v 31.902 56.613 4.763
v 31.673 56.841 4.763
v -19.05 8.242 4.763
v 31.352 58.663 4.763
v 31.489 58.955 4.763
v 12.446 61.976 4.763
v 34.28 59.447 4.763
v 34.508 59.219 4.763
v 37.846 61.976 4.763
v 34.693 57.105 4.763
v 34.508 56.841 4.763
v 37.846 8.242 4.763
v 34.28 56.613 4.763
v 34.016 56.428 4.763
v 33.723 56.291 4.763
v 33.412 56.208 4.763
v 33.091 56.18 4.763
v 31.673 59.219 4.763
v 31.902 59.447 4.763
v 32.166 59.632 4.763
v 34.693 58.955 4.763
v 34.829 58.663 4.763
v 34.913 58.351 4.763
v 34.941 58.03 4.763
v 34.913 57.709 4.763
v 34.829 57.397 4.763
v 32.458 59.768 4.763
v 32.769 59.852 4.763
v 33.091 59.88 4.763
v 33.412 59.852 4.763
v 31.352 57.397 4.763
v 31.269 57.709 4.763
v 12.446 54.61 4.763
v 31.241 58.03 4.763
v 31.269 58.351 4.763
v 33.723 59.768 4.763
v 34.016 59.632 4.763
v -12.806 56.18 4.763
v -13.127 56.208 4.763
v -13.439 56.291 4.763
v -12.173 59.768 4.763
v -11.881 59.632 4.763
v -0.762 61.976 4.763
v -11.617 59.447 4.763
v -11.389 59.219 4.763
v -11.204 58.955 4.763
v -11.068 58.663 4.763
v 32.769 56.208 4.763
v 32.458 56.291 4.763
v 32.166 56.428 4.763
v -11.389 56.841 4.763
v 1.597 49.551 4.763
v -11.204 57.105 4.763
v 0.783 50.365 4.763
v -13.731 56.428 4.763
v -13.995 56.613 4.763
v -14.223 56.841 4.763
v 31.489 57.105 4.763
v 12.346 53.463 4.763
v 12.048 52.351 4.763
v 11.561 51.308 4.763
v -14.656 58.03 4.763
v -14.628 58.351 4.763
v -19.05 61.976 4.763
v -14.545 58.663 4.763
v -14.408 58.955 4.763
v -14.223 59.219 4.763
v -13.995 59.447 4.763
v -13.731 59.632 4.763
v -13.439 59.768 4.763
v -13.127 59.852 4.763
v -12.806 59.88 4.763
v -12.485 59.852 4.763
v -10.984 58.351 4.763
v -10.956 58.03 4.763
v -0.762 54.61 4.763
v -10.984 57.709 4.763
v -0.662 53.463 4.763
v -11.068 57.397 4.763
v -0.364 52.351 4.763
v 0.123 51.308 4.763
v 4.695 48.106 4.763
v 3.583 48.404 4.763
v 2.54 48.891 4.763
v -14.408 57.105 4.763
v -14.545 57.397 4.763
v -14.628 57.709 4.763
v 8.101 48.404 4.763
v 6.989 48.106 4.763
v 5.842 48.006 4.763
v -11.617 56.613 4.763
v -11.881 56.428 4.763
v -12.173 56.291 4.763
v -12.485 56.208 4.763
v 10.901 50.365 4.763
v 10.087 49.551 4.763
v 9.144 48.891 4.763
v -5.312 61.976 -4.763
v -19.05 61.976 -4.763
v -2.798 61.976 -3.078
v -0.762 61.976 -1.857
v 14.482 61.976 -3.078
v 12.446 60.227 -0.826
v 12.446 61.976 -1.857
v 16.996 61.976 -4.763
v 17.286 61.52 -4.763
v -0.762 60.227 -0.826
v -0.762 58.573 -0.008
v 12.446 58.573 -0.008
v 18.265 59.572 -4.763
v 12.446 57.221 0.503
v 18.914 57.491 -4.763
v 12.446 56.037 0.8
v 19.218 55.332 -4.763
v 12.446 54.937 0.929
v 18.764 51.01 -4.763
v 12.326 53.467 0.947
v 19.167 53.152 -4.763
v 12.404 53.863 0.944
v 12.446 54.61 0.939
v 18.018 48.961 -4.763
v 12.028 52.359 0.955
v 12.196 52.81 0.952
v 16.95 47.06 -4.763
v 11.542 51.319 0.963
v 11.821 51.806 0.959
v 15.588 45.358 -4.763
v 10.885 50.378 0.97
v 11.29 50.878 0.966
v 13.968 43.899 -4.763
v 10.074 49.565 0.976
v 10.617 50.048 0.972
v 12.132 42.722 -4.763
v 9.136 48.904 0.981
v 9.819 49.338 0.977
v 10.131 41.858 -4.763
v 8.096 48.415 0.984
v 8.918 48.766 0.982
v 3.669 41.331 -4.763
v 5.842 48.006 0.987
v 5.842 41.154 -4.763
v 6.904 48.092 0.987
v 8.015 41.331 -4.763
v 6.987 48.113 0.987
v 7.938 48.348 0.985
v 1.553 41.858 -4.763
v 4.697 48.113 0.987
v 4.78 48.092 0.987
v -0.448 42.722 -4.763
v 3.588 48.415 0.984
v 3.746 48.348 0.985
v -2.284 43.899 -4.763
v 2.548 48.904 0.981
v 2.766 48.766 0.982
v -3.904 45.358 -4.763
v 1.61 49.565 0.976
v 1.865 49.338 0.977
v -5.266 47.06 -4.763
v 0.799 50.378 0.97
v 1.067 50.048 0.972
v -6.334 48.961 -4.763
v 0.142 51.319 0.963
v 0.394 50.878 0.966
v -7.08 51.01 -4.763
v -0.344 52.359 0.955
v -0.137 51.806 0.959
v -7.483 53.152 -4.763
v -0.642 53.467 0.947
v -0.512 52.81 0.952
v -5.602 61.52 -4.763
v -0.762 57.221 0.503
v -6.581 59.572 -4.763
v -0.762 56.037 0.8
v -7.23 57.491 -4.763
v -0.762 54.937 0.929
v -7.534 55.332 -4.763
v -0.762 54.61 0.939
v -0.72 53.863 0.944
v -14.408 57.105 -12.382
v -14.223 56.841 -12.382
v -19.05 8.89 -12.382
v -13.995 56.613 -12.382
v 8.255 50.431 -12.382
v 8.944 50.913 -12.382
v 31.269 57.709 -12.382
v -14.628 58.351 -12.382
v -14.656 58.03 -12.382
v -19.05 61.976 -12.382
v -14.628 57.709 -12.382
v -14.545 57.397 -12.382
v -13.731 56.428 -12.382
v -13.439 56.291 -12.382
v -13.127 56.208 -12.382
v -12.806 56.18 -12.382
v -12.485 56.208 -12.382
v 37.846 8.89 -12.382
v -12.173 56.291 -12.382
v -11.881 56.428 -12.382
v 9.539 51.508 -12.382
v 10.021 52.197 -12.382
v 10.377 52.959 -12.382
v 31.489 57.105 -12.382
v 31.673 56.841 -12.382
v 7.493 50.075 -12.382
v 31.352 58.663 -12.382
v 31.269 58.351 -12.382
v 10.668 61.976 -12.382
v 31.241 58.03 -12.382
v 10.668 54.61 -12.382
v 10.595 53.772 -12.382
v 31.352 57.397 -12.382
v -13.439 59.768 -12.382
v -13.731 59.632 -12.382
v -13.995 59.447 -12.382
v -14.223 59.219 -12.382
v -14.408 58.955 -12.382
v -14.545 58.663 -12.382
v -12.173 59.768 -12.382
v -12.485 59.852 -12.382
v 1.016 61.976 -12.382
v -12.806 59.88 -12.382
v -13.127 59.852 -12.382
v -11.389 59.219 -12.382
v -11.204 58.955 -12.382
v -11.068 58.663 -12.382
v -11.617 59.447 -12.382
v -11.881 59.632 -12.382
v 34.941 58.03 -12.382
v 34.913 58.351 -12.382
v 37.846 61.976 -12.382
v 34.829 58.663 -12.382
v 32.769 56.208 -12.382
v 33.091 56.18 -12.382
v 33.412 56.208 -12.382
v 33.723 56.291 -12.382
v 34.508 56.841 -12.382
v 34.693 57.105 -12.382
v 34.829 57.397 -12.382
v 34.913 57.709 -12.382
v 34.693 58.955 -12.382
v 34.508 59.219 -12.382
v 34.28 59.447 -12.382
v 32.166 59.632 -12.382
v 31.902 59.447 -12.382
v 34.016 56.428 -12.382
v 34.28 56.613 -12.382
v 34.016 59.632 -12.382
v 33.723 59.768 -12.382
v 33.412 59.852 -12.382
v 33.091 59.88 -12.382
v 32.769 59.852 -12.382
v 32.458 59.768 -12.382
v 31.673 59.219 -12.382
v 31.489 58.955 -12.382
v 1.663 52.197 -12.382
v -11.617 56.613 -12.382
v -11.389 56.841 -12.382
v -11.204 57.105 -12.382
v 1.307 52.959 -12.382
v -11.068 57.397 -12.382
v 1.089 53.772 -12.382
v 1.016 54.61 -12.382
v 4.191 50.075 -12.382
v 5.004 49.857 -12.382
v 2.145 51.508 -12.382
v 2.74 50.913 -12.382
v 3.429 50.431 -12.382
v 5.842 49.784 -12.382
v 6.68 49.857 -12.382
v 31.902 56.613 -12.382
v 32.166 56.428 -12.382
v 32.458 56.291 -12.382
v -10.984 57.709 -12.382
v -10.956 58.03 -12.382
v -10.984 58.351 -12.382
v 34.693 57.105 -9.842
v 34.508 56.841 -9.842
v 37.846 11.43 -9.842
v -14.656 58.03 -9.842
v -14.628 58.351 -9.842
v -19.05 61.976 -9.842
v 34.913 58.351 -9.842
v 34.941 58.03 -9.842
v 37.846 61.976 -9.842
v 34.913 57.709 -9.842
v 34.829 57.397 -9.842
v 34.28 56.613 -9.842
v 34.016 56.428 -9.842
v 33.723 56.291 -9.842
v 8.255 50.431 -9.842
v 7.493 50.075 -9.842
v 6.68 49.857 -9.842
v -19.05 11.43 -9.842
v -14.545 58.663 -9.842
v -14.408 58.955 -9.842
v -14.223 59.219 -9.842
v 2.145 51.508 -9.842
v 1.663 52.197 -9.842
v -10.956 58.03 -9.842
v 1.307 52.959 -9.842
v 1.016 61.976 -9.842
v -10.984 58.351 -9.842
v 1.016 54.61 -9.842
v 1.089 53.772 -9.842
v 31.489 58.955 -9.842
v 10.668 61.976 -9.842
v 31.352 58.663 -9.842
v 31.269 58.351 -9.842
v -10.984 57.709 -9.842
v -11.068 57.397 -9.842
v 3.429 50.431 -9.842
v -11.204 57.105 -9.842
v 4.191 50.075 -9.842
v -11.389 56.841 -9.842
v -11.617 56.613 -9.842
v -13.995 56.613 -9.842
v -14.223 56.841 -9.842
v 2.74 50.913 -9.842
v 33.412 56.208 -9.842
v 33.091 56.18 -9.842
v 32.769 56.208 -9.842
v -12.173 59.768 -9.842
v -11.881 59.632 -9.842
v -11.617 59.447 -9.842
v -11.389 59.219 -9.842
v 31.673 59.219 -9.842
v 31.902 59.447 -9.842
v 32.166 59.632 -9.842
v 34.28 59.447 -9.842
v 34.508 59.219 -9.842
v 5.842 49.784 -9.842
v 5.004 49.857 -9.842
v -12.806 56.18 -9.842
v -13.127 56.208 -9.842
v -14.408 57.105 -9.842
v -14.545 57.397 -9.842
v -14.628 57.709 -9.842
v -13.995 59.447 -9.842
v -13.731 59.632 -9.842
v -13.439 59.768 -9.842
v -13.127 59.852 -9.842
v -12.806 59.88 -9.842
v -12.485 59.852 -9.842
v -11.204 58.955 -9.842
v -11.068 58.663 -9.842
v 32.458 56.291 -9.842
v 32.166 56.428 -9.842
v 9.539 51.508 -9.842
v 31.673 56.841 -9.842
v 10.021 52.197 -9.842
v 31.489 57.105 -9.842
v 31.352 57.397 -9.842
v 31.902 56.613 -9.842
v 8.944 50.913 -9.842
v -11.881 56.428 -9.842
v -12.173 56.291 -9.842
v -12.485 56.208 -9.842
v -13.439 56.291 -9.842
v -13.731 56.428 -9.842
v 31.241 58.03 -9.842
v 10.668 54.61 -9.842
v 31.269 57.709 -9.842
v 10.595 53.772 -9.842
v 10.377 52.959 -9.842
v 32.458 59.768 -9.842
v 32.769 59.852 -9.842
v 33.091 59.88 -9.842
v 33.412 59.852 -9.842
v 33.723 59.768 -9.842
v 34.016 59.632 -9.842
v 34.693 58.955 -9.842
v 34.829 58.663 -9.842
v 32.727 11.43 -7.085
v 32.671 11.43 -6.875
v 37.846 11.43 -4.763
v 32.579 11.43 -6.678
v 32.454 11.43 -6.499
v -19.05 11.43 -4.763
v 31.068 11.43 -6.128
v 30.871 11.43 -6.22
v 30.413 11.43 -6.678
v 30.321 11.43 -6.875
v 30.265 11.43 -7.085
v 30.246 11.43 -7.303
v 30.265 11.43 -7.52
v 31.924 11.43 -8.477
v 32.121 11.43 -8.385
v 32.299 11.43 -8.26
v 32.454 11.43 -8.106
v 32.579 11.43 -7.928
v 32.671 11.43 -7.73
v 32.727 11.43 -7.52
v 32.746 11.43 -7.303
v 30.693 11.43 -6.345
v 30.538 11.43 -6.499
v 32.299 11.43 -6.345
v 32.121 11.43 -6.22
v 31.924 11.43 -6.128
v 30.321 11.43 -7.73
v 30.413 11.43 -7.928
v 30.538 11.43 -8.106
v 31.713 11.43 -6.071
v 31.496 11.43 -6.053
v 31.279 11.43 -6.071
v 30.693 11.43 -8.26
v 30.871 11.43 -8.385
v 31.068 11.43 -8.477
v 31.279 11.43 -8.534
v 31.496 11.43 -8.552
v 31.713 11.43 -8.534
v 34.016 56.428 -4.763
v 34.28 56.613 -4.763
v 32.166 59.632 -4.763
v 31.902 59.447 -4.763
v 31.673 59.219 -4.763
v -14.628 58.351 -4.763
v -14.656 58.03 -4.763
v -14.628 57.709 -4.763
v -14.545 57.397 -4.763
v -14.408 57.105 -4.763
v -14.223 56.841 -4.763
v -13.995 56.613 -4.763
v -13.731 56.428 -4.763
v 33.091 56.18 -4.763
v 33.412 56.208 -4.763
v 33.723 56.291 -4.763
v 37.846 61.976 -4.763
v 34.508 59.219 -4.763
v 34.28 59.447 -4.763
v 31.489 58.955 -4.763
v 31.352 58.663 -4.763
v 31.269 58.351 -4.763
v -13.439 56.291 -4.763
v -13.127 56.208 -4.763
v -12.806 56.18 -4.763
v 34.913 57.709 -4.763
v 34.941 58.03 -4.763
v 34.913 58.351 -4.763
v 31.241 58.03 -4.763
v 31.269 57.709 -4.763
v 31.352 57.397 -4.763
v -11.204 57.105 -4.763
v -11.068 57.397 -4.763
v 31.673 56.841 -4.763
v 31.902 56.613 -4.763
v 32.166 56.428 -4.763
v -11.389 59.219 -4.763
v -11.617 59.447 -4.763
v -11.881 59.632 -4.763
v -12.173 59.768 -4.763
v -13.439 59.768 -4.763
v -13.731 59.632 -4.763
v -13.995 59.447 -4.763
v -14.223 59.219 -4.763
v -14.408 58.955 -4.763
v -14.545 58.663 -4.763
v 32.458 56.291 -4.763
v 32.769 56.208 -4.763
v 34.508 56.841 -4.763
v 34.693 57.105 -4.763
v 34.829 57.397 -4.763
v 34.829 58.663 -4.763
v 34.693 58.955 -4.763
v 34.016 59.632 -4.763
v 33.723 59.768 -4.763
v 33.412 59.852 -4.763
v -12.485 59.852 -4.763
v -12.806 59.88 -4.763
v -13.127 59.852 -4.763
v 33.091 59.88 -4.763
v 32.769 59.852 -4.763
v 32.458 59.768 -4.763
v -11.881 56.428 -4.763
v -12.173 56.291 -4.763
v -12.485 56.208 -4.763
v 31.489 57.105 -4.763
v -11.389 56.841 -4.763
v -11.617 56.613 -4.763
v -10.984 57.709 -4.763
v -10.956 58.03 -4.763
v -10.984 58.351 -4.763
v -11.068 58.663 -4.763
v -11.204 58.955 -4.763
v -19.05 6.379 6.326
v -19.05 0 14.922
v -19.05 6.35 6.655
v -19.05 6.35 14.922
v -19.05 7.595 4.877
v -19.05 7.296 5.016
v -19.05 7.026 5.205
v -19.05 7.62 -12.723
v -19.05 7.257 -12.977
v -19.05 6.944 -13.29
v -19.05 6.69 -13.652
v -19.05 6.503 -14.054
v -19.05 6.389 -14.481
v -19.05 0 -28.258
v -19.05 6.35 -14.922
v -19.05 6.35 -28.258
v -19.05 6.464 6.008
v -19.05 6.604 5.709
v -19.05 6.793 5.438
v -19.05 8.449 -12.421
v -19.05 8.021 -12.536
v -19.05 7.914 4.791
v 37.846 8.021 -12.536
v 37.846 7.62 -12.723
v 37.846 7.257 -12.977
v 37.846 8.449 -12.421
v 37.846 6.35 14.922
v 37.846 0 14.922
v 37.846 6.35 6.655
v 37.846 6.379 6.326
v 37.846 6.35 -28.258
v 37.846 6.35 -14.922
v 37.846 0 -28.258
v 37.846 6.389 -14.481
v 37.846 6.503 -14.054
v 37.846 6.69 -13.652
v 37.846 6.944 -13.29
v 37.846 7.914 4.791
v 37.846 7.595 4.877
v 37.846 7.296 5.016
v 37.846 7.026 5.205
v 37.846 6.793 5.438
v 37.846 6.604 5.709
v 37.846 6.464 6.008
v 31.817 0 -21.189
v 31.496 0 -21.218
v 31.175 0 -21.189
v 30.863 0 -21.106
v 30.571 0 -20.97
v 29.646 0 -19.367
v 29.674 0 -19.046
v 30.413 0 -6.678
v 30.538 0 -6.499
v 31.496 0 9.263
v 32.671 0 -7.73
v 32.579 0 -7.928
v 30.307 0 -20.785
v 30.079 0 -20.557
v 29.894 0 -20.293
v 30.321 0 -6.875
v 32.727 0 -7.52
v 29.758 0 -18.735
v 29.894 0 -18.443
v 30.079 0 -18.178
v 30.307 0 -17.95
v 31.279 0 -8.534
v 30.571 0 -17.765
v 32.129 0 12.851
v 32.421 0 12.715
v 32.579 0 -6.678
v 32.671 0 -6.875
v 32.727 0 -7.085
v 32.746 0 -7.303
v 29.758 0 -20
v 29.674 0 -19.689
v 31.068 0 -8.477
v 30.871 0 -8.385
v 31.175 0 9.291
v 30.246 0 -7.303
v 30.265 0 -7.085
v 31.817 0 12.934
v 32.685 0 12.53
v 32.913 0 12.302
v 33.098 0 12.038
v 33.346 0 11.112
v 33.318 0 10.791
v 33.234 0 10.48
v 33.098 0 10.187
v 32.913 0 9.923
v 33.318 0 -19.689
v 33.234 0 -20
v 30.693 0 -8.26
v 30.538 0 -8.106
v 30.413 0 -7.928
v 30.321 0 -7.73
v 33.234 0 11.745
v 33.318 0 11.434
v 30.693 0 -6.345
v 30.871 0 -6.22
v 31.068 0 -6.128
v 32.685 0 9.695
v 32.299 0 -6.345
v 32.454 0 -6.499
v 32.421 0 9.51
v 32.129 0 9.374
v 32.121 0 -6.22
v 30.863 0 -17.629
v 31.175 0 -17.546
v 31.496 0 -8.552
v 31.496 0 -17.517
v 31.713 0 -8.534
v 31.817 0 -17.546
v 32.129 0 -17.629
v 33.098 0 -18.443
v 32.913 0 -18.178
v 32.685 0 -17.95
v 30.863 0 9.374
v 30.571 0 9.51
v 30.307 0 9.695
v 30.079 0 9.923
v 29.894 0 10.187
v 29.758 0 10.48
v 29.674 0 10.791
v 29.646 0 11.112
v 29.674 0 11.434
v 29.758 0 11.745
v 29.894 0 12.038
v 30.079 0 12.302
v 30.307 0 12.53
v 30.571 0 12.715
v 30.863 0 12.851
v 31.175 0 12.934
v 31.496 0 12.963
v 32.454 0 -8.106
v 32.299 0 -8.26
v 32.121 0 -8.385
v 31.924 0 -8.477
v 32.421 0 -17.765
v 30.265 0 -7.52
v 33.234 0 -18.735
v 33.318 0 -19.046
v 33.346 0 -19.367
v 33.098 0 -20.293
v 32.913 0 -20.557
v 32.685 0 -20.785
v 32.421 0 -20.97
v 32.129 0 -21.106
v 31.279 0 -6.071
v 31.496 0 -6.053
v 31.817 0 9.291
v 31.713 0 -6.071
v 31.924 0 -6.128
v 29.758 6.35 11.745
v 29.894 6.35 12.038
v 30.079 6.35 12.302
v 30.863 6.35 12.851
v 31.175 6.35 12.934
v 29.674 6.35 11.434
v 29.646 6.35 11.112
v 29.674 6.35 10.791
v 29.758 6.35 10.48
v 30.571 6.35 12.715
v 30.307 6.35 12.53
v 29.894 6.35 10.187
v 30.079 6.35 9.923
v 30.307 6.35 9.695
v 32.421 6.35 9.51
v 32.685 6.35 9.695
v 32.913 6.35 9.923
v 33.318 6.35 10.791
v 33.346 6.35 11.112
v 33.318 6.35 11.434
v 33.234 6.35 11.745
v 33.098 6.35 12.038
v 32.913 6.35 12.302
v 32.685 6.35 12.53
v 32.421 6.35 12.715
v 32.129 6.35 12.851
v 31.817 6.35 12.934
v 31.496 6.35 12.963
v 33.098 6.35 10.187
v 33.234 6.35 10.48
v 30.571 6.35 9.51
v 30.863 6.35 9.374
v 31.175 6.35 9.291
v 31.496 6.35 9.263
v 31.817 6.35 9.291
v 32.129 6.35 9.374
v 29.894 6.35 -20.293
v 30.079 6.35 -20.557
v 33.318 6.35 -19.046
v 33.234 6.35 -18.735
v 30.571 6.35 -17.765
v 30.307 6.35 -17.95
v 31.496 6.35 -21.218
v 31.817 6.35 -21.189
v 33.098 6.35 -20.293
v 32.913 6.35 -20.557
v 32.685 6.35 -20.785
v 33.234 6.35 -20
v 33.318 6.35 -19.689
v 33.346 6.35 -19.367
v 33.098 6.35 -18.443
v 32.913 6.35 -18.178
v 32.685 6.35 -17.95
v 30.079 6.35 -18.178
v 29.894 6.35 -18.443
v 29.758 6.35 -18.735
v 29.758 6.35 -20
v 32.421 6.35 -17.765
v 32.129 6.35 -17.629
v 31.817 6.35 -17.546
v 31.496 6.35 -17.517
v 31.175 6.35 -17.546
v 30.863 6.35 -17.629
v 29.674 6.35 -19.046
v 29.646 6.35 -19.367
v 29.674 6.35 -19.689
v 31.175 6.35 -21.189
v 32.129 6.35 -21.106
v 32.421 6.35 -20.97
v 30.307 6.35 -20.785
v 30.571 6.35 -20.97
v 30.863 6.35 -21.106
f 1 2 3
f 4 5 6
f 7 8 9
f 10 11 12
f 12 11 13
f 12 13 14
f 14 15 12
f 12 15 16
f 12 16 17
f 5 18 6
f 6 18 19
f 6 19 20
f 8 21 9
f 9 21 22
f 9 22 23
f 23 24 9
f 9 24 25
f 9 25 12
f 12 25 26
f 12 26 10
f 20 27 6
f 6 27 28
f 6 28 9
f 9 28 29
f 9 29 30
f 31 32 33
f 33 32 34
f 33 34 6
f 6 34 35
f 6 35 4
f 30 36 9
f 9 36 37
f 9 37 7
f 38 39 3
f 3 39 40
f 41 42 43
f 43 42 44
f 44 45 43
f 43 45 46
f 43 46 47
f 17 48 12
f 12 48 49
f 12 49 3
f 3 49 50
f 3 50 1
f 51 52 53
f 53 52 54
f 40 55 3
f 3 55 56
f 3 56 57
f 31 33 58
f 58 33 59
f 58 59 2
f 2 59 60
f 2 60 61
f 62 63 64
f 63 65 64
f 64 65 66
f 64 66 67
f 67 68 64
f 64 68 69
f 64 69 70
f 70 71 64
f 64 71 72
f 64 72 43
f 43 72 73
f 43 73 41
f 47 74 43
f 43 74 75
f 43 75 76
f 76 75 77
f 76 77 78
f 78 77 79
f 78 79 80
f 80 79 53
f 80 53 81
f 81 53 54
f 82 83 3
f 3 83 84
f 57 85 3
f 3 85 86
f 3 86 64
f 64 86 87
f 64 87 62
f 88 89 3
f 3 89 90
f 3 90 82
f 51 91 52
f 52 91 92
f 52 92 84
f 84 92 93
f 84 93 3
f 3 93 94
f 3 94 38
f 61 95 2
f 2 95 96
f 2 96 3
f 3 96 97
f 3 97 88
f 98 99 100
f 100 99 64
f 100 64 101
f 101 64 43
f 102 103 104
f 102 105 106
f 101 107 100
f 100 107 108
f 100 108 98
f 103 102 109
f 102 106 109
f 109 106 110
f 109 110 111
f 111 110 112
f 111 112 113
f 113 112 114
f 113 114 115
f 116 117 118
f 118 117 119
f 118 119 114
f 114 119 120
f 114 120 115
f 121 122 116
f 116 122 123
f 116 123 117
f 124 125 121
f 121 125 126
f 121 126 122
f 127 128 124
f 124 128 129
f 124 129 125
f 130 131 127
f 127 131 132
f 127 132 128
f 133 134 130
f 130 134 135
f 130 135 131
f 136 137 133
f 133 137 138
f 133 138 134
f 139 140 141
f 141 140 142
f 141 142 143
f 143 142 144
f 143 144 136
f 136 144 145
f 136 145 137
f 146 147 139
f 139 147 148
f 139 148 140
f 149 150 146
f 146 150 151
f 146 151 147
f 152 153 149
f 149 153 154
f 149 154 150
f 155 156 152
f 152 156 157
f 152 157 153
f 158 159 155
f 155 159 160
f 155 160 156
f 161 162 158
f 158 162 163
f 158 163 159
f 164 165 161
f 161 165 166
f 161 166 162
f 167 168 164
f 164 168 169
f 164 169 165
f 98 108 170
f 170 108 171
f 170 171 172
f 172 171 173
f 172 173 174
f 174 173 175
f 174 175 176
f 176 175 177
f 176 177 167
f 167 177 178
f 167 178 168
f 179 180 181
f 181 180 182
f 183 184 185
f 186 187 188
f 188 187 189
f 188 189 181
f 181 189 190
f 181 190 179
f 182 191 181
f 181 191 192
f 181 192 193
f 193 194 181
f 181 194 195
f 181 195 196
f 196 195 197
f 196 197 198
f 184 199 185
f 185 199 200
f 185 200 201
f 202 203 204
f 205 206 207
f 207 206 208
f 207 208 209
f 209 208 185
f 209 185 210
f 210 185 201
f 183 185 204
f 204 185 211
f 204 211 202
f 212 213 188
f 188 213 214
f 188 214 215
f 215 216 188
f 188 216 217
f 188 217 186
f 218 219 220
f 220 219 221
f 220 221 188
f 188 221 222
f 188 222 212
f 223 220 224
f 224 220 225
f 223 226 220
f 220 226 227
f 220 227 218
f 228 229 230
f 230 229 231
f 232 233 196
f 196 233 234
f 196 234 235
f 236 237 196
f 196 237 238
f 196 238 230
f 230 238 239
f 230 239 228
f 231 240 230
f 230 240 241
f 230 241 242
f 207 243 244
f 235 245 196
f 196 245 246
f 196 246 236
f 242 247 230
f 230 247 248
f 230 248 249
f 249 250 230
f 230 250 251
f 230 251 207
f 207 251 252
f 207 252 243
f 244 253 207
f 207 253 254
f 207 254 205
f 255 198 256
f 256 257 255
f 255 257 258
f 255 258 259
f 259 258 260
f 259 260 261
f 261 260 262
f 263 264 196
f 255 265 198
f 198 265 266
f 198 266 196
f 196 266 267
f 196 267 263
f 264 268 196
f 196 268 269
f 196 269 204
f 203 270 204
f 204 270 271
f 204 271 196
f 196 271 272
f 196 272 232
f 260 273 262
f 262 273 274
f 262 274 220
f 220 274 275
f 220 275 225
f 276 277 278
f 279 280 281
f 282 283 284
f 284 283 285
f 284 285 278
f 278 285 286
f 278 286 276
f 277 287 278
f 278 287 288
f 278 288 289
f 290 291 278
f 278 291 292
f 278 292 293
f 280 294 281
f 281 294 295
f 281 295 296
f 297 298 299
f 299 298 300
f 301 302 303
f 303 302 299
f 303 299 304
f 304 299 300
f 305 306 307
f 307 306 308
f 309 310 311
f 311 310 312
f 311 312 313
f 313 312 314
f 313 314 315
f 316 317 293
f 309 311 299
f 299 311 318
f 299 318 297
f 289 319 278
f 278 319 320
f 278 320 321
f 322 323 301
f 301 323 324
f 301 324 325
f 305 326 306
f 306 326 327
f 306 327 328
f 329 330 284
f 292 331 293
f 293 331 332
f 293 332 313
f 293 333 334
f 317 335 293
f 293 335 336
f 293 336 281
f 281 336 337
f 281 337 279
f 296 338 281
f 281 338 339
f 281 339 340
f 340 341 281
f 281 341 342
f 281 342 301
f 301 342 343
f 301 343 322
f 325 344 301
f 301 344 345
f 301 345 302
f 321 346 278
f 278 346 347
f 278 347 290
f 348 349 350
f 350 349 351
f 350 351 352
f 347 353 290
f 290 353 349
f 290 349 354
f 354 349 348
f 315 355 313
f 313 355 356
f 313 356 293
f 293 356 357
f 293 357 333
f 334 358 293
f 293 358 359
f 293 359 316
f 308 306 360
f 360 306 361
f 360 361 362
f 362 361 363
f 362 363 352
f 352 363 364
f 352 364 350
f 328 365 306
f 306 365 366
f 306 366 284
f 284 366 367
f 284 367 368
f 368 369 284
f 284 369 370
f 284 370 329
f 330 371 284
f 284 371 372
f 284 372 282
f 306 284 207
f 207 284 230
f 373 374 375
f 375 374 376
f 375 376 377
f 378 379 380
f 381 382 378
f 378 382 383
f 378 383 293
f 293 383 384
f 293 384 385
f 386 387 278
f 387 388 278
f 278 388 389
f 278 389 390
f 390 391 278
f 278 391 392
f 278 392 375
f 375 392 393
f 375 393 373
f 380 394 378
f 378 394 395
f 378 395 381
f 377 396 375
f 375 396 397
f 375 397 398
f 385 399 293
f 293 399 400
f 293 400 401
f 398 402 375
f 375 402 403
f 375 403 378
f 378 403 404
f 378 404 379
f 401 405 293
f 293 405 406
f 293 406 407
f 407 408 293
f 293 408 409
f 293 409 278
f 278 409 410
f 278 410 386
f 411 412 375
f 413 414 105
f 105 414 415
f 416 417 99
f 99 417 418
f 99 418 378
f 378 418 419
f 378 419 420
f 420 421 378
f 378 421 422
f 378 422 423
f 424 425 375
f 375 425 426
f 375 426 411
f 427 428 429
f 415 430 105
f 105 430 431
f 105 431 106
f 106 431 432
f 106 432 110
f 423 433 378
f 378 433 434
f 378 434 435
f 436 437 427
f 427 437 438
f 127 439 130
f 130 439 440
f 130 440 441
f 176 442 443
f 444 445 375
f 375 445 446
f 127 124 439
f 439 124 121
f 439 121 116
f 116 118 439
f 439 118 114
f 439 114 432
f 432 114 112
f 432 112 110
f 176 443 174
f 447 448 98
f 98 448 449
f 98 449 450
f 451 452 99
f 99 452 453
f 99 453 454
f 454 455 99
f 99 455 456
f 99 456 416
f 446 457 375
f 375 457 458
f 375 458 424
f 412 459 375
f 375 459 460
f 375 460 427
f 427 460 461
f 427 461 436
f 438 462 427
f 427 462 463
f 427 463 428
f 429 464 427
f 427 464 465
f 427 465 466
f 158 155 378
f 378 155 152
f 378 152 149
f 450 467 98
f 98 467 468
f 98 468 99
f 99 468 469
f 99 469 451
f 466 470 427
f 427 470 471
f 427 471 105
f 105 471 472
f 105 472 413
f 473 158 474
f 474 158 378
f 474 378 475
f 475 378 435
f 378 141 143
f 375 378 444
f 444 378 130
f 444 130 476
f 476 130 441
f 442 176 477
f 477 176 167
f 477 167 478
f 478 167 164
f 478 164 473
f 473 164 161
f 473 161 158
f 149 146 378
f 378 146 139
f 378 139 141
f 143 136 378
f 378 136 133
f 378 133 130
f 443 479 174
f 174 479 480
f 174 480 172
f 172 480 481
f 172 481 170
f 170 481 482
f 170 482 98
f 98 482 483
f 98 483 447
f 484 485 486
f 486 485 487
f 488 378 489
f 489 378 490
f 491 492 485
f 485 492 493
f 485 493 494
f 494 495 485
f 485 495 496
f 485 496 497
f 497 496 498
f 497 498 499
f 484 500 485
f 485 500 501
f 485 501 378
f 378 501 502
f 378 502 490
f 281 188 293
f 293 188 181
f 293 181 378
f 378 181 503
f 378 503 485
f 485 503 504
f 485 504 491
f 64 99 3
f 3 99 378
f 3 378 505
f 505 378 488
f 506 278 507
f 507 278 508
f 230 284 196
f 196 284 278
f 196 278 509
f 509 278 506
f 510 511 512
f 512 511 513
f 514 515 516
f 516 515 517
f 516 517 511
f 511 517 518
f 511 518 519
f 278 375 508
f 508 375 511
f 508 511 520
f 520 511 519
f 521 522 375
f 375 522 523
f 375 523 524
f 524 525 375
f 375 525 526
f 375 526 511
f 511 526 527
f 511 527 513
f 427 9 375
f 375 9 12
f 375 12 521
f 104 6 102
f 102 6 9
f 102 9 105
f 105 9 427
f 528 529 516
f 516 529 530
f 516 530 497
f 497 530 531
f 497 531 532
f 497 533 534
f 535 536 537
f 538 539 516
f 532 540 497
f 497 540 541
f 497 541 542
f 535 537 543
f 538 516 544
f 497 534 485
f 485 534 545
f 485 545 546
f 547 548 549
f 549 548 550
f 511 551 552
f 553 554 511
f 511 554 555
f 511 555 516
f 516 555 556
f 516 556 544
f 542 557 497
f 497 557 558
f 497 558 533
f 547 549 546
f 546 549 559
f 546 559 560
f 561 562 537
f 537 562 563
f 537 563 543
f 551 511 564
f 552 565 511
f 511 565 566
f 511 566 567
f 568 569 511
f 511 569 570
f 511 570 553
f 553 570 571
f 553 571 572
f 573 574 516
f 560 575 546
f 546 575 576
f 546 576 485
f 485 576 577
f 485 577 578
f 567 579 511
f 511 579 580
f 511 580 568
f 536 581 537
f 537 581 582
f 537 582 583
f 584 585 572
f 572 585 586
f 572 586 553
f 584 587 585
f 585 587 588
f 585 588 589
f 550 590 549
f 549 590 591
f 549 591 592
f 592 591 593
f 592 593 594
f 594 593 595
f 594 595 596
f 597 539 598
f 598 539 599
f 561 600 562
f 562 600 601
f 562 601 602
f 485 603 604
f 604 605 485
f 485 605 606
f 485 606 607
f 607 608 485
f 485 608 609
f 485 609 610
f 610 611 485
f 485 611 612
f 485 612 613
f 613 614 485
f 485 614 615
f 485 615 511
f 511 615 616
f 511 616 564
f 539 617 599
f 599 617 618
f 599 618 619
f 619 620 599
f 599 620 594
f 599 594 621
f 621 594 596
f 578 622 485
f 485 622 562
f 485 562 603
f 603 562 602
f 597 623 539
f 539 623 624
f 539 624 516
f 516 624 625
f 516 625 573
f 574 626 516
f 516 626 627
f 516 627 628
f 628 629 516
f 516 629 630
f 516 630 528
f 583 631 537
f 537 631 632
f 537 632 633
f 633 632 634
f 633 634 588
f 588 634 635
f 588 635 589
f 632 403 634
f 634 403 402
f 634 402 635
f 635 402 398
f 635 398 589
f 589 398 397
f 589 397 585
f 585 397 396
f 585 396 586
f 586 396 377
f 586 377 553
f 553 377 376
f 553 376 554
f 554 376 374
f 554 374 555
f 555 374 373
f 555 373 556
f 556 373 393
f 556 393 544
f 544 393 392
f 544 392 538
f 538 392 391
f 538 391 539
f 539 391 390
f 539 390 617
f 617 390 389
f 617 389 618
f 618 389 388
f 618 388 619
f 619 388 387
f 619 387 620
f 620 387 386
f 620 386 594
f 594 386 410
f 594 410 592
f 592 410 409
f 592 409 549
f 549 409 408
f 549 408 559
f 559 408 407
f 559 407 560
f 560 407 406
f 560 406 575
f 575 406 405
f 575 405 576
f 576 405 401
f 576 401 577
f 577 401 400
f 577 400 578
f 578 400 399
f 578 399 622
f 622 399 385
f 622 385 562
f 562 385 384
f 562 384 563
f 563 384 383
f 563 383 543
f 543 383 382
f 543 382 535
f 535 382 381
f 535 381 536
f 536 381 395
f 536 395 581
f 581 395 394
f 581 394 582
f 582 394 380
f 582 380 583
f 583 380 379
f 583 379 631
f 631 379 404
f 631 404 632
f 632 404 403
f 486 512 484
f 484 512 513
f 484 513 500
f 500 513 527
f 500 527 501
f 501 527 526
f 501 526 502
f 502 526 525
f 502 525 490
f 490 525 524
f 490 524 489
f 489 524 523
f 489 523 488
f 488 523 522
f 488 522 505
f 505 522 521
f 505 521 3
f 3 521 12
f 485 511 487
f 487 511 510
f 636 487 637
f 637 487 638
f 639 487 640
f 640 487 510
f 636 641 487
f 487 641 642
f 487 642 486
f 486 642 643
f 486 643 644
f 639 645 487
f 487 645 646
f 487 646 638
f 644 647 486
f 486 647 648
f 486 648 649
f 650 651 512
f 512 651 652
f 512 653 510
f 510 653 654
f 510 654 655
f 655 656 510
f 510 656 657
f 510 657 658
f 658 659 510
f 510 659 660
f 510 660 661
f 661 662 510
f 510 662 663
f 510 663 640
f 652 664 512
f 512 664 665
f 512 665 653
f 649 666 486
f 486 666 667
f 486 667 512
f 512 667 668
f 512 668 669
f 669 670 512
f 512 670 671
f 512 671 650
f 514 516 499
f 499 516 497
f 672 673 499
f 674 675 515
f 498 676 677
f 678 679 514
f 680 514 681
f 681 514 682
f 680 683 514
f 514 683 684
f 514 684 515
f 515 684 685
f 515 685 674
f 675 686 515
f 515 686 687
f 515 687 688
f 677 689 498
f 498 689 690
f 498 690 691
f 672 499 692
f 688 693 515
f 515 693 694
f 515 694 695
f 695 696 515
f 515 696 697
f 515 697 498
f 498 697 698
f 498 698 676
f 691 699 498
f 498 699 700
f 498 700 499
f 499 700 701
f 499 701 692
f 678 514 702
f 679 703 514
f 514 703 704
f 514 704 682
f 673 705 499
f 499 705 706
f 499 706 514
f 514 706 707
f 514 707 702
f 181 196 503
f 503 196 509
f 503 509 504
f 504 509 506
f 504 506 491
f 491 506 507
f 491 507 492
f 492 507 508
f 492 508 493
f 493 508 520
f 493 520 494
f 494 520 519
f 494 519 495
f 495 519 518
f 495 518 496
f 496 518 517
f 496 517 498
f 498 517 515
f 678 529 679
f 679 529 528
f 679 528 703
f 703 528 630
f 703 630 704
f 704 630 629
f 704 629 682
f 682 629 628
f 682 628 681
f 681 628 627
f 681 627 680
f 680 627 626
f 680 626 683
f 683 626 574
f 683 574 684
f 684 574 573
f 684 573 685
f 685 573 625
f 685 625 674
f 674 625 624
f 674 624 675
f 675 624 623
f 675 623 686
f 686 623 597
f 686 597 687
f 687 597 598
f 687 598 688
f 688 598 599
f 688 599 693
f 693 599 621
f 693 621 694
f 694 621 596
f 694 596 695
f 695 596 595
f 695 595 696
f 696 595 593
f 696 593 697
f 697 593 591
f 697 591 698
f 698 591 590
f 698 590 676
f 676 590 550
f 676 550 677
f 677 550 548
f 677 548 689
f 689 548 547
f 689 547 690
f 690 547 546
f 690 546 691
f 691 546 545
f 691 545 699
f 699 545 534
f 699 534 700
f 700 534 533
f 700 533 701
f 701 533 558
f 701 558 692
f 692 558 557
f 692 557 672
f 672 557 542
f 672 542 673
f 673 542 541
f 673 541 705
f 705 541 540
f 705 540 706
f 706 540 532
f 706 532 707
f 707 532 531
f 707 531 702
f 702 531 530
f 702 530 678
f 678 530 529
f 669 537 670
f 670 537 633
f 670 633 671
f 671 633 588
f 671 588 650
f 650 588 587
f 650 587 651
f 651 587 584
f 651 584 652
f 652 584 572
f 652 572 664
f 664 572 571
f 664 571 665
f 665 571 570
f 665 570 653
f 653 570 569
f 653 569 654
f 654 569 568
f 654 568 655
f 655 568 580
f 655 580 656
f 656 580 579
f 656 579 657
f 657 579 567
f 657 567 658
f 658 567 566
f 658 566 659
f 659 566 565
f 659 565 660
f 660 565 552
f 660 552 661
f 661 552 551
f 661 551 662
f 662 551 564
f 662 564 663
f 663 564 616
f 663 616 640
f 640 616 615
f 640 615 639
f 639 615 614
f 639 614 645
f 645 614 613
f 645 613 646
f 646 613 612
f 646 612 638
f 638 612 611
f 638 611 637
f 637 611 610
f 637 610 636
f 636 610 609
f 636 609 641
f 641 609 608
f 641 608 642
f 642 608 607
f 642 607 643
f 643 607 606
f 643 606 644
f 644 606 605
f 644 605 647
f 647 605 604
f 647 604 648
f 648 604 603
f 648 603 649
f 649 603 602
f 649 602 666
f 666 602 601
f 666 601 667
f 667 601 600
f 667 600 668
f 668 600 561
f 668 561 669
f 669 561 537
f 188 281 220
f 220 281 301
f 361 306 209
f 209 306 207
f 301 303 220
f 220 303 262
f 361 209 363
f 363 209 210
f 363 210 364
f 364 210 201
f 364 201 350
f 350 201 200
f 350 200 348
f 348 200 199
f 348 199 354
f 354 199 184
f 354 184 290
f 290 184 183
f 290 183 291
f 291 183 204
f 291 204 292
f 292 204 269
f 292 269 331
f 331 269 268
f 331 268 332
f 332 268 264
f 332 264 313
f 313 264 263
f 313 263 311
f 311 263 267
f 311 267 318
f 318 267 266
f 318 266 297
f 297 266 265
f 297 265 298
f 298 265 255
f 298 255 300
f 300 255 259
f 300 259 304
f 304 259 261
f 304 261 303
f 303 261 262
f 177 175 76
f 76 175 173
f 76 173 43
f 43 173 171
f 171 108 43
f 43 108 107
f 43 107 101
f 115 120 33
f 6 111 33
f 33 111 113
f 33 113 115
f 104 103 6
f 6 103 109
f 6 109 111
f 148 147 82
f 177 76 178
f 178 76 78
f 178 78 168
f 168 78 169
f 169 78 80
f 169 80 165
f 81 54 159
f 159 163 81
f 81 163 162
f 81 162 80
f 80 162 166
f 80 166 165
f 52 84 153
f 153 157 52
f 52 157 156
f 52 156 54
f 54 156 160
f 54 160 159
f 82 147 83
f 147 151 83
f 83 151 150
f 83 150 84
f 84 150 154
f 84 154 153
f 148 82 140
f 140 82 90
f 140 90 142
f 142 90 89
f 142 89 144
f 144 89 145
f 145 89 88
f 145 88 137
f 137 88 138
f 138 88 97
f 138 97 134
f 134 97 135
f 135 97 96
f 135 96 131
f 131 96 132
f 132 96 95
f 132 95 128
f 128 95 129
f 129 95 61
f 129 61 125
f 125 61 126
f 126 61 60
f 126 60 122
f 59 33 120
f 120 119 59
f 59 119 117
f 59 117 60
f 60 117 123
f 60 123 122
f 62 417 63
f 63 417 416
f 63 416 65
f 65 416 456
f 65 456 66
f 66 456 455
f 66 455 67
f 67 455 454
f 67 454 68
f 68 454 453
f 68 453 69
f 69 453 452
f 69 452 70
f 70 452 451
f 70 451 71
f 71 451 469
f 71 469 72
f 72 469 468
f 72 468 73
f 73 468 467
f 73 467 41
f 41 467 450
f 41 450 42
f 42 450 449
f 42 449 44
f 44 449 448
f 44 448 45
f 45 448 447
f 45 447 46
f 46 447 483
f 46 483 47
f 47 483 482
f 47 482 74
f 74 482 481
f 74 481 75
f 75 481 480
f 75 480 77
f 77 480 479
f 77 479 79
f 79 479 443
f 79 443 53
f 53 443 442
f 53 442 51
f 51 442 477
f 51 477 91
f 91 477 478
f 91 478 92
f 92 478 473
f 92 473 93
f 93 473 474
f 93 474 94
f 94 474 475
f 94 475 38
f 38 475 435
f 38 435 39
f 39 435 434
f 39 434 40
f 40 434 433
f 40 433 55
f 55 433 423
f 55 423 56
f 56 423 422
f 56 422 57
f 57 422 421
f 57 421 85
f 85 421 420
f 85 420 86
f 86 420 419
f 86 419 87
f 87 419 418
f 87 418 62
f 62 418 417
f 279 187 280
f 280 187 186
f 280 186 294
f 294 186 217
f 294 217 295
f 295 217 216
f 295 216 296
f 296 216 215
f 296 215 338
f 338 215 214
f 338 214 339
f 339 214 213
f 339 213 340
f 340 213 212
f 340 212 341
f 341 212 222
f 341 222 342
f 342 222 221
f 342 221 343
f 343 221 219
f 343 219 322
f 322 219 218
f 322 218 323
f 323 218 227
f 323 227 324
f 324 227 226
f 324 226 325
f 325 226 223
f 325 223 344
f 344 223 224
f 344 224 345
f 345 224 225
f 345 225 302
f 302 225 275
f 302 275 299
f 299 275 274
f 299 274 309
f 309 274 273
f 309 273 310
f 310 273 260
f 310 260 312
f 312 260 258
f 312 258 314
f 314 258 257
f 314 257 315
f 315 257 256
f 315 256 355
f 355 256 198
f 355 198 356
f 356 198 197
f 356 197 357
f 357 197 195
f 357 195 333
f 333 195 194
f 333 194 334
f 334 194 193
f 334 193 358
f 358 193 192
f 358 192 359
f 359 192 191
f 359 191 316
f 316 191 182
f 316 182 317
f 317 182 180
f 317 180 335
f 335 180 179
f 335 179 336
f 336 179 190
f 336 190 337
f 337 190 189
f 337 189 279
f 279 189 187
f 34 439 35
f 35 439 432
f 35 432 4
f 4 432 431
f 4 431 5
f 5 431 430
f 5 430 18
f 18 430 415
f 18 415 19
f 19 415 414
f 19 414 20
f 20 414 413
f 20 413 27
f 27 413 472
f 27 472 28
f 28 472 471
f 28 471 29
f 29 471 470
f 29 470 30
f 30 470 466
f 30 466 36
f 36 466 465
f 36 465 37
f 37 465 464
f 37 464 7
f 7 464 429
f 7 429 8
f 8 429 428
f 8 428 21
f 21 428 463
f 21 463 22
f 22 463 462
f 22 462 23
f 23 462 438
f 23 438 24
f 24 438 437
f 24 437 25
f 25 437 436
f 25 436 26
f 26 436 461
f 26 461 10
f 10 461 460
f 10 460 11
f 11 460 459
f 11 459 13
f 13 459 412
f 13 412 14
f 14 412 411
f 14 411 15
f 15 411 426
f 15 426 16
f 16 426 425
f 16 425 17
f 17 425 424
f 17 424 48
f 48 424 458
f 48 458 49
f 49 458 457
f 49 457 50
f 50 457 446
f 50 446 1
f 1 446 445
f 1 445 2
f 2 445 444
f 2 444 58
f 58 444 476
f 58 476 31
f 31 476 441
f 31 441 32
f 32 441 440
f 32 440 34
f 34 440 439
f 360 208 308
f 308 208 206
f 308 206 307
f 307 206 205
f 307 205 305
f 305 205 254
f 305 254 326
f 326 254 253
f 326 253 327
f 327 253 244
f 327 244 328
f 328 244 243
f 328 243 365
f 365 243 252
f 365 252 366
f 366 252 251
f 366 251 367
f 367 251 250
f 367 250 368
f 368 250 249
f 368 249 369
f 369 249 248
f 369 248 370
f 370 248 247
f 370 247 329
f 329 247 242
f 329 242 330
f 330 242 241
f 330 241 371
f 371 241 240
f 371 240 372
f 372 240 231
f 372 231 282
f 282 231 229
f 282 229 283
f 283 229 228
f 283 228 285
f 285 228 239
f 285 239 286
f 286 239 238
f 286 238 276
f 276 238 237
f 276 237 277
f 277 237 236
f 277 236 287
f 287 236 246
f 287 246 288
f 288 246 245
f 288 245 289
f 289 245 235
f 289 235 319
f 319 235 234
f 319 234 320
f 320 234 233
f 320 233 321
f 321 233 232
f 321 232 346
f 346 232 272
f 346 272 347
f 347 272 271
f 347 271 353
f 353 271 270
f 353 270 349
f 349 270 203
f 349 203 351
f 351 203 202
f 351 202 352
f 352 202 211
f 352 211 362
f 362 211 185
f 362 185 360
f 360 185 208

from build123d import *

# Parameters (mm, degrees)
SKETCH1_W                       = 56.896
SKETCH1_H                       = 9.525
BOSS_EXTRUDE1_DEPTH             = 61.976
SKETCH2_R                       = 13.3985
CUT_EXTRUDE1_DEPTH              = 5.8801
CUT_EXTRUDE1_DRAFT              = -50
SKETCH5_W                       = 56.896
SKETCH5_H                       = 11.43
BOSS_EXTRUDE2_DEPTH             = 7.62
TAP_DRILL_FOR_M3X0_5_TAP3_D     = 2.5
TAP_DRILL_FOR_M3X0_5_TAP3_DEPTH = 25.4
TAP_DRILL_FOR_M3X0_5_TAP3_TIP   = 0.751075774
BOSS_EXTRUDE4_DEPTH             = 56.896
M3_CLEARANCE_HOLE3_D            = 3.7
M3_CLEARANCE_HOLE3_DEPTH        = 25.4
M3_CLEARANCE_HOLE3_TIP          = 1.111592145
SKETCH6_W                       = 56.896
SKETCH6_H                       = 2.54
BOSS_EXTRUDE5_DEPTH             = 50.546
SKETCH24_R                      = 4.826
CUT_EXTRUDE2_DEPTH              = 2.54
SKETCH25_R                      = 6.604
CUT_EXTRUDE3_DEPTH              = 7.366
M3_CLEARANCE_HOLE4_D            = 3.7
M3_CLEARANCE_HOLE4_DEPTH        = 17.272
M3_CLEARANCE_HOLE4_TIP          = 1.111592145


with BuildPart() as part:
    # Sketch1 → Boss-Extrude1 (new body)
    with BuildSketch(Plane(origin=(0, 0, 0), x_dir=(1, 0, 0), z_dir=(0, 1, 0))):
        with Locations((9.398, 0)):
            Rectangle(SKETCH1_W, SKETCH1_H)
    extrude(amount=BOSS_EXTRUDE1_DEPTH)


with BuildPart() as cut_extrude1_tool:
    # Sketch2 → Cut-Extrude1 (with draft: the straight prism first)
    with BuildSketch(Plane(origin=(0, 0, -4.7625), x_dir=(-1, 0, 0), z_dir=(0, 0, -1))):
        with Locations((-5.842, 54.552080914)):
            Circle(SKETCH2_R)
    extrude(amount=-CUT_EXTRUDE1_DEPTH)
    # Cut-Extrude1: the draft: its side faces are tilted about the plane it starts from
    cut_extrude1_sides = [cut_extrude1_tool.faces().sort_by_distance(p)[0] for p in [
        (19.2405, 54.552080914, -1.82245),
    ]]
    draft(cut_extrude1_sides, Plane(origin=(0, 0, -4.7625), x_dir=(-1, 0, 0), z_dir=(0, 0, -1)), CUT_EXTRUDE1_DRAFT)


with BuildPart() as part_1:
    add(part.part)

    # Cut-Extrude1: cut by cut_extrude1_tool
    add(cut_extrude1_tool.part, mode=Mode.SUBTRACT)

    # Sketch5 → Boss-Extrude2 (add)
    with BuildSketch(Plane(origin=(0, 0, -4.7625), x_dir=(-1, 0, 0), z_dir=(0, 0, -1))):
        with Locations((-9.398, 5.715)):
            Rectangle(SKETCH5_W, SKETCH5_H)
    extrude(amount=BOSS_EXTRUDE2_DEPTH)

    # Tap Drill for M3x0.5 Tap3
    with Locations(Plane(origin=(0, 11.43, 0), x_dir=(1, 0, 0), z_dir=(0, 1, 0))):
        with Locations((31.496, 7.3025)):
            Hole(TAP_DRILL_FOR_M3X0_5_TAP3_D / 2, depth=TAP_DRILL_FOR_M3X0_5_TAP3_DEPTH)
            with Locations((0, 0, -(TAP_DRILL_FOR_M3X0_5_TAP3_DEPTH + TAP_DRILL_FOR_M3X0_5_TAP3_TIP / 2))):  # 118° drill point
                Cone(0, TAP_DRILL_FOR_M3X0_5_TAP3_D / 2, TAP_DRILL_FOR_M3X0_5_TAP3_TIP, mode=Mode.SUBTRACT)

    # Sketch19 → Boss-Extrude4 (add)
    with BuildSketch(Plane(origin=(37.846, 0, 0), x_dir=(0, 0, -1), z_dir=(1, 0, 0))):
        with BuildLine():
            Line((12.3825, 8.89), (12.3825, 0))
            Line((12.3825, 0), (28.2575, 0))
            Line((28.2575, 0), (28.2575, 6.35))
            Line((28.2575, 6.35), (14.9225, 6.35))
            ThreePointArc((14.9225, 6.35), (13.126448776, 7.093948776), (12.3825, 8.89))
        make_face()
        with BuildLine():
            Line((-14.9225, 0), (-4.7625, 0))
            Line((-4.7625, 0), (-4.7625, 8.2423))
            ThreePointArc((-4.7625, 8.2423), (-5.316741838, 6.904241838), (-6.6548, 6.35))
            Line((-6.6548, 6.35), (-14.9225, 6.35))
            Line((-14.9225, 6.35), (-14.9225, 0))
        make_face()
    extrude(amount=-BOSS_EXTRUDE4_DEPTH)

    # M3 Clearance Hole3
    with Locations(Plane(origin=(0, 0, 0), x_dir=(-1, 0, 0), z_dir=(0, -1, 0))):
        with Locations((-31.496, -11.1125), (-31.496, 19.3675)):
            Hole(M3_CLEARANCE_HOLE3_D / 2, depth=M3_CLEARANCE_HOLE3_DEPTH)
            with Locations((0, 0, -(M3_CLEARANCE_HOLE3_DEPTH + M3_CLEARANCE_HOLE3_TIP / 2))):  # 118° drill point
                Cone(0, M3_CLEARANCE_HOLE3_D / 2, M3_CLEARANCE_HOLE3_TIP, mode=Mode.SUBTRACT)

    # Sketch6 → Boss-Extrude5 (add)
    with BuildSketch(Plane(origin=(0, 11.43, 0), x_dir=(1, 0, 0), z_dir=(0, 1, 0))):
        with Locations((9.398, 11.1125)):
            Rectangle(SKETCH6_W, SKETCH6_H)
    extrude(amount=BOSS_EXTRUDE5_DEPTH)

    # Sketch24 → Cut-Extrude2 (cut)
    with BuildSketch(Plane(origin=(0, 0, -12.3825), x_dir=(-1, 0, 0), z_dir=(0, 0, -1))):
        with BuildLine():
            ThreePointArc((-10.668, 54.61), (-5.842, 59.436), (-1.016, 54.61))
            Line((-1.016, 54.61), (-1.016, 61.976))
            Line((-1.016, 61.976), (-10.668, 61.976))
            Line((-10.668, 61.976), (-10.668, 54.61))
        make_face()
        with Locations((-5.842, 54.61)):
            Circle(SKETCH24_R)
    extrude(amount=-CUT_EXTRUDE2_DEPTH, mode=Mode.SUBTRACT)

    # Sketch25 → Cut-Extrude3 (cut)
    with BuildSketch(Plane.XY.offset(4.7625)):
        with BuildLine():
            ThreePointArc((-0.762, 54.61), (5.842, 61.214), (12.446, 54.61))
            Line((12.446, 54.61), (12.446, 61.976))
            Line((12.446, 61.976), (-0.762, 61.976))
            Line((-0.762, 61.976), (-0.762, 54.61))
        make_face()
        with Locations((5.842, 54.61)):
            Circle(SKETCH25_R)
    extrude(amount=-CUT_EXTRUDE3_DEPTH, mode=Mode.SUBTRACT)

    # M3 Clearance Hole4
    with Locations(Plane(origin=(0, 0, -12.3825), x_dir=(-1, 0, 0), z_dir=(0, 0, -1))):
        with Locations((-33.09066659, 58.02989171), (12.806122092, 58.02989171)):
            Hole(M3_CLEARANCE_HOLE4_D / 2, depth=M3_CLEARANCE_HOLE4_DEPTH)
            with Locations((0, 0, -(M3_CLEARANCE_HOLE4_DEPTH + M3_CLEARANCE_HOLE4_TIP / 2))):  # 118° drill point
                Cone(0, M3_CLEARANCE_HOLE4_D / 2, M3_CLEARANCE_HOLE4_TIP, mode=Mode.SUBTRACT)


solid = part_1.part
